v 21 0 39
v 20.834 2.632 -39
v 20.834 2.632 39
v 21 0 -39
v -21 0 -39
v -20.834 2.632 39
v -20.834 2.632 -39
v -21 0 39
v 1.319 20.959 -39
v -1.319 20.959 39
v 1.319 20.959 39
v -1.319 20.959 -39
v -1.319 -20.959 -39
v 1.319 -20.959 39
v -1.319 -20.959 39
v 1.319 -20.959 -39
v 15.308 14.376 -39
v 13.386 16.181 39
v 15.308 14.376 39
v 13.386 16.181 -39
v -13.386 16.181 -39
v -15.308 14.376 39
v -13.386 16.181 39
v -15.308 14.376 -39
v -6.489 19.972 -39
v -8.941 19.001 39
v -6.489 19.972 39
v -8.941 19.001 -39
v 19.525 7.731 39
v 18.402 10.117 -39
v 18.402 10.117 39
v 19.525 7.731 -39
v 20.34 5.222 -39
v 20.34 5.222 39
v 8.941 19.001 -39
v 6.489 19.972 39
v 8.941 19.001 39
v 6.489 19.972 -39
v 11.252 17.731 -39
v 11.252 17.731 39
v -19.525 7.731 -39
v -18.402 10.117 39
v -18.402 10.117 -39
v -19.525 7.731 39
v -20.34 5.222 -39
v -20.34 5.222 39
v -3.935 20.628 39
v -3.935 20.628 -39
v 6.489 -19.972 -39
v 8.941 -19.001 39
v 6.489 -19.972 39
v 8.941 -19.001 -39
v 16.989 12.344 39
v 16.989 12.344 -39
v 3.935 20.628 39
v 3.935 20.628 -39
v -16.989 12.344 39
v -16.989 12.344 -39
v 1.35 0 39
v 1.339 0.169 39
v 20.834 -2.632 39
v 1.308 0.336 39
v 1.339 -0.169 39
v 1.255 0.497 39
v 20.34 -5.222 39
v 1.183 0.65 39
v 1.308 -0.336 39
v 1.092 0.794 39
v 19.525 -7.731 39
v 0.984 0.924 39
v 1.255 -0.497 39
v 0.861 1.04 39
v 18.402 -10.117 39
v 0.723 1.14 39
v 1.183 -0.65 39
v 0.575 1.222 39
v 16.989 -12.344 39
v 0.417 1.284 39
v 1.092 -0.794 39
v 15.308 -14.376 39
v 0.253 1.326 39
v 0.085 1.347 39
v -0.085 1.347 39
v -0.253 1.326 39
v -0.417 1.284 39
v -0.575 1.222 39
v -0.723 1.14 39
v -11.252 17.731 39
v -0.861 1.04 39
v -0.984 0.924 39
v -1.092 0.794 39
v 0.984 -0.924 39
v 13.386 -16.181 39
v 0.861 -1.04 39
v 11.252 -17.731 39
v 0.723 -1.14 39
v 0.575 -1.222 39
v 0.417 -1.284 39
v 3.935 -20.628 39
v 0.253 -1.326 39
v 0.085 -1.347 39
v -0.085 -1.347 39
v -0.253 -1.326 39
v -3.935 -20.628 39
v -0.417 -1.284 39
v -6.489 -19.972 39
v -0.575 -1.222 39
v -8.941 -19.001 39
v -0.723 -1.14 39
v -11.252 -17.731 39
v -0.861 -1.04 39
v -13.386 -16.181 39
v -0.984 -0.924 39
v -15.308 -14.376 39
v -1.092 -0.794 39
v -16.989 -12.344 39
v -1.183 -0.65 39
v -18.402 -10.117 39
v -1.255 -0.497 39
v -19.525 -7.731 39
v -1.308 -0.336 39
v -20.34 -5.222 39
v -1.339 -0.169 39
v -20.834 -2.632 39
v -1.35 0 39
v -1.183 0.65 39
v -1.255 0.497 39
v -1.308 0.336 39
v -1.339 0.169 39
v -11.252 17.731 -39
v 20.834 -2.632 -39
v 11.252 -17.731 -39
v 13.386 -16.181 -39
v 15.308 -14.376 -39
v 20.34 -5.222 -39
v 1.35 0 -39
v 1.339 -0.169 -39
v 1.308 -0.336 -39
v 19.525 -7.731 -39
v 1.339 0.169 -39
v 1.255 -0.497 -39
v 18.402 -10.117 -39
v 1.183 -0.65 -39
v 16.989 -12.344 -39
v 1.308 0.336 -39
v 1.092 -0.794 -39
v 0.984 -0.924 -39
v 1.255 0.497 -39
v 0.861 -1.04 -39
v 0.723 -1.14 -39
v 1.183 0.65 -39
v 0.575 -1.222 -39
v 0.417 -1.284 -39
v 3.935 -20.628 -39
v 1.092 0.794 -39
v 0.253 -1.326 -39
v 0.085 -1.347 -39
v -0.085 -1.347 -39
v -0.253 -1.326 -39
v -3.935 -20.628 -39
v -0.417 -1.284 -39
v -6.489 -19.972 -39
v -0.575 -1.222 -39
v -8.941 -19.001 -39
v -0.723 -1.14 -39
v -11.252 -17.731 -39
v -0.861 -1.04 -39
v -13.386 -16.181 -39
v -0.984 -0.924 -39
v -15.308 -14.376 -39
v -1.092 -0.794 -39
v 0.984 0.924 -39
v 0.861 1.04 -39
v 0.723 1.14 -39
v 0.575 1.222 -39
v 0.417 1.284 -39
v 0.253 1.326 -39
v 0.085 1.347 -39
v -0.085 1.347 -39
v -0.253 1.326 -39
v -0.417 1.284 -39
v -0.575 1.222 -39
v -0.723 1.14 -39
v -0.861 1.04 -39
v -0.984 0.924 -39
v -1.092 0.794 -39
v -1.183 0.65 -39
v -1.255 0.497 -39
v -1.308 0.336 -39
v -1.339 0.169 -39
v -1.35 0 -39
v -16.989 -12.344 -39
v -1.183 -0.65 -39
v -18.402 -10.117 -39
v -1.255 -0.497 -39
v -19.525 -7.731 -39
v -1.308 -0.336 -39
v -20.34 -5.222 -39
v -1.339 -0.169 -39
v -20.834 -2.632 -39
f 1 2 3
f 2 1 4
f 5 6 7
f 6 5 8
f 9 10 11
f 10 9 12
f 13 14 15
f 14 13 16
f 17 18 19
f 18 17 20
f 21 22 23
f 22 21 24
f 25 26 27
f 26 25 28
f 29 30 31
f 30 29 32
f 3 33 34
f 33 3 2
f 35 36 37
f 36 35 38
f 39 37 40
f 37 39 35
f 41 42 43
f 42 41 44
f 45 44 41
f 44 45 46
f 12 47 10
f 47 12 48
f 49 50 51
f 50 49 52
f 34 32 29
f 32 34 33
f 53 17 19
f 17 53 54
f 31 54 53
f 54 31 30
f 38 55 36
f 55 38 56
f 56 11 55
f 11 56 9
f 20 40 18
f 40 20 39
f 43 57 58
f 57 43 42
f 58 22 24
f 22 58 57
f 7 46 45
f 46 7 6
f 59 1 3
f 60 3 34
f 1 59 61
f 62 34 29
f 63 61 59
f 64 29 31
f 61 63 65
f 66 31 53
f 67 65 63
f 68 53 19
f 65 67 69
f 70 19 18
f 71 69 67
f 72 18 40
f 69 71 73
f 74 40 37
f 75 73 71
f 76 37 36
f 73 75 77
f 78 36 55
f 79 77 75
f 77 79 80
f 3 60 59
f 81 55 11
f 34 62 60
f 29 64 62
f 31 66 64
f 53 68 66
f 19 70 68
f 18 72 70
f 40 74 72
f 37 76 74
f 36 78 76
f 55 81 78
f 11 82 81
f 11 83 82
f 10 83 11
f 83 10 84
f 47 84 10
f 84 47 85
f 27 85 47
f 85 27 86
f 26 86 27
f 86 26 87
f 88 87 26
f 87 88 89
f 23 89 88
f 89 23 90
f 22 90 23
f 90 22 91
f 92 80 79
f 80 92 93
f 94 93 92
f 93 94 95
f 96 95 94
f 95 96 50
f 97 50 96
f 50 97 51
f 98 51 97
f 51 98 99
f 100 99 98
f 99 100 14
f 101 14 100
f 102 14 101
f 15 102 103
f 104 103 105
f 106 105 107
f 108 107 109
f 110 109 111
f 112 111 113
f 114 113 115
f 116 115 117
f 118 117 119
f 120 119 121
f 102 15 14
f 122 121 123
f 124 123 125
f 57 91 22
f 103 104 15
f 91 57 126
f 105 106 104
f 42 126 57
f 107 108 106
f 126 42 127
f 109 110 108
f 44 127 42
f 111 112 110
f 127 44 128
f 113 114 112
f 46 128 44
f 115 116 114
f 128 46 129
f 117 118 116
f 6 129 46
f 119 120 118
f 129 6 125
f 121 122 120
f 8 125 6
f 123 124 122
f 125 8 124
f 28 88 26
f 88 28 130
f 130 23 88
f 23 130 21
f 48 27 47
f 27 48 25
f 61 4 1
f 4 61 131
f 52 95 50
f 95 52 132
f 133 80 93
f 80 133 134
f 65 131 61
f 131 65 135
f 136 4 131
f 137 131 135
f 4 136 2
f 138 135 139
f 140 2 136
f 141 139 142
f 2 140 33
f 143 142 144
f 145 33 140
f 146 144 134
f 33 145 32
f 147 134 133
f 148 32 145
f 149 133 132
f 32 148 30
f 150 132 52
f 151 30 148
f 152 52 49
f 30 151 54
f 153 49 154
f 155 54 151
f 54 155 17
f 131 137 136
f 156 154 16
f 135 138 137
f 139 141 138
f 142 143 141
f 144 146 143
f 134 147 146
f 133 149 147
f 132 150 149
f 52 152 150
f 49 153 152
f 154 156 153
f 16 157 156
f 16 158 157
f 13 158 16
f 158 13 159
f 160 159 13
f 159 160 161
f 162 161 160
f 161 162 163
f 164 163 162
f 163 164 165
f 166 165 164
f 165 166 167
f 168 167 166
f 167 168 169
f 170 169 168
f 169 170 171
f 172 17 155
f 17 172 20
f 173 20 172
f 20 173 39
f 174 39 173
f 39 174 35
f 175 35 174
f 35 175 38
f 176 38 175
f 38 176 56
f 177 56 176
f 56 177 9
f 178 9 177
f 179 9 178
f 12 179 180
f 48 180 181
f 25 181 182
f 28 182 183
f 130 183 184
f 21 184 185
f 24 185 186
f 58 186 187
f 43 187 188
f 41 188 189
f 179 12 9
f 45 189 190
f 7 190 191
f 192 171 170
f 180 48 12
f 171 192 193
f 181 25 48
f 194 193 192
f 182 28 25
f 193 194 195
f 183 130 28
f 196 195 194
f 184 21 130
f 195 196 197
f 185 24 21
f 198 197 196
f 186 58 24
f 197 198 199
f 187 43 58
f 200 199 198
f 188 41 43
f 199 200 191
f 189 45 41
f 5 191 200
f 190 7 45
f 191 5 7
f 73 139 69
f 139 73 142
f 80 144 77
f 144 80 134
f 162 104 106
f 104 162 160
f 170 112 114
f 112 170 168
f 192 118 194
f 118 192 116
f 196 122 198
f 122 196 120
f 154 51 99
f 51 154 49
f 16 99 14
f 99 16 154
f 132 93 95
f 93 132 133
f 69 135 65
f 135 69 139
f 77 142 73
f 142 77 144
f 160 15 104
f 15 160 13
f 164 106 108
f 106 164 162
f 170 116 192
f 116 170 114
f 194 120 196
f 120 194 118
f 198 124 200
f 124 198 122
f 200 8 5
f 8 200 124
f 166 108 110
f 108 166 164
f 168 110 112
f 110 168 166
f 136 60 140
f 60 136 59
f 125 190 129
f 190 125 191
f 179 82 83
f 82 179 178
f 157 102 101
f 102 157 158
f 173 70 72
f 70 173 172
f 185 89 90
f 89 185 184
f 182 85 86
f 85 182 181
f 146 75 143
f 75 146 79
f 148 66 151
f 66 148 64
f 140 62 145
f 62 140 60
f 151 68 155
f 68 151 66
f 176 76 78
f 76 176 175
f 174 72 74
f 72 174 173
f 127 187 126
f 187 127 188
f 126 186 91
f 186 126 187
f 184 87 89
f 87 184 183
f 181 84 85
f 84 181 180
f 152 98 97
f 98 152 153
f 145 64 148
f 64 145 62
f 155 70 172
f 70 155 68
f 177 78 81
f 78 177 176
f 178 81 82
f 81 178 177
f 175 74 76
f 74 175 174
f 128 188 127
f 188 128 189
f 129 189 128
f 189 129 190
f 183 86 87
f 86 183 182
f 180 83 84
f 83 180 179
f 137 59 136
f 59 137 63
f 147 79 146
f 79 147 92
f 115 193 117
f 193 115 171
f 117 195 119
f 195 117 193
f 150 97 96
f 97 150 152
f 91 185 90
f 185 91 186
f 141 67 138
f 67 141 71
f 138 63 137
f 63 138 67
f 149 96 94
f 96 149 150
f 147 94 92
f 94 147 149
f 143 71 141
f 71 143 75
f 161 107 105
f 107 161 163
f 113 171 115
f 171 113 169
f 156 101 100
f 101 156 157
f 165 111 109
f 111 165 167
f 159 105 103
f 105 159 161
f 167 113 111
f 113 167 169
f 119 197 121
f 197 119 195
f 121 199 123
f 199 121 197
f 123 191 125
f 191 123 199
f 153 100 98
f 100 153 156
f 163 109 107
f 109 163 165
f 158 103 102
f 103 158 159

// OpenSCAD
$fn = 50;


difference() {
	union() {
		translate(v = [0, 0, -39.0000000000]) {
			cylinder(h = 78, r = 21.0000000000);
		}
	}
	union() {
		translate(v = [0, 0, -100.0000000000]) {
			cylinder(h = 200, r = 1.3500000000);
		}
	}
}
